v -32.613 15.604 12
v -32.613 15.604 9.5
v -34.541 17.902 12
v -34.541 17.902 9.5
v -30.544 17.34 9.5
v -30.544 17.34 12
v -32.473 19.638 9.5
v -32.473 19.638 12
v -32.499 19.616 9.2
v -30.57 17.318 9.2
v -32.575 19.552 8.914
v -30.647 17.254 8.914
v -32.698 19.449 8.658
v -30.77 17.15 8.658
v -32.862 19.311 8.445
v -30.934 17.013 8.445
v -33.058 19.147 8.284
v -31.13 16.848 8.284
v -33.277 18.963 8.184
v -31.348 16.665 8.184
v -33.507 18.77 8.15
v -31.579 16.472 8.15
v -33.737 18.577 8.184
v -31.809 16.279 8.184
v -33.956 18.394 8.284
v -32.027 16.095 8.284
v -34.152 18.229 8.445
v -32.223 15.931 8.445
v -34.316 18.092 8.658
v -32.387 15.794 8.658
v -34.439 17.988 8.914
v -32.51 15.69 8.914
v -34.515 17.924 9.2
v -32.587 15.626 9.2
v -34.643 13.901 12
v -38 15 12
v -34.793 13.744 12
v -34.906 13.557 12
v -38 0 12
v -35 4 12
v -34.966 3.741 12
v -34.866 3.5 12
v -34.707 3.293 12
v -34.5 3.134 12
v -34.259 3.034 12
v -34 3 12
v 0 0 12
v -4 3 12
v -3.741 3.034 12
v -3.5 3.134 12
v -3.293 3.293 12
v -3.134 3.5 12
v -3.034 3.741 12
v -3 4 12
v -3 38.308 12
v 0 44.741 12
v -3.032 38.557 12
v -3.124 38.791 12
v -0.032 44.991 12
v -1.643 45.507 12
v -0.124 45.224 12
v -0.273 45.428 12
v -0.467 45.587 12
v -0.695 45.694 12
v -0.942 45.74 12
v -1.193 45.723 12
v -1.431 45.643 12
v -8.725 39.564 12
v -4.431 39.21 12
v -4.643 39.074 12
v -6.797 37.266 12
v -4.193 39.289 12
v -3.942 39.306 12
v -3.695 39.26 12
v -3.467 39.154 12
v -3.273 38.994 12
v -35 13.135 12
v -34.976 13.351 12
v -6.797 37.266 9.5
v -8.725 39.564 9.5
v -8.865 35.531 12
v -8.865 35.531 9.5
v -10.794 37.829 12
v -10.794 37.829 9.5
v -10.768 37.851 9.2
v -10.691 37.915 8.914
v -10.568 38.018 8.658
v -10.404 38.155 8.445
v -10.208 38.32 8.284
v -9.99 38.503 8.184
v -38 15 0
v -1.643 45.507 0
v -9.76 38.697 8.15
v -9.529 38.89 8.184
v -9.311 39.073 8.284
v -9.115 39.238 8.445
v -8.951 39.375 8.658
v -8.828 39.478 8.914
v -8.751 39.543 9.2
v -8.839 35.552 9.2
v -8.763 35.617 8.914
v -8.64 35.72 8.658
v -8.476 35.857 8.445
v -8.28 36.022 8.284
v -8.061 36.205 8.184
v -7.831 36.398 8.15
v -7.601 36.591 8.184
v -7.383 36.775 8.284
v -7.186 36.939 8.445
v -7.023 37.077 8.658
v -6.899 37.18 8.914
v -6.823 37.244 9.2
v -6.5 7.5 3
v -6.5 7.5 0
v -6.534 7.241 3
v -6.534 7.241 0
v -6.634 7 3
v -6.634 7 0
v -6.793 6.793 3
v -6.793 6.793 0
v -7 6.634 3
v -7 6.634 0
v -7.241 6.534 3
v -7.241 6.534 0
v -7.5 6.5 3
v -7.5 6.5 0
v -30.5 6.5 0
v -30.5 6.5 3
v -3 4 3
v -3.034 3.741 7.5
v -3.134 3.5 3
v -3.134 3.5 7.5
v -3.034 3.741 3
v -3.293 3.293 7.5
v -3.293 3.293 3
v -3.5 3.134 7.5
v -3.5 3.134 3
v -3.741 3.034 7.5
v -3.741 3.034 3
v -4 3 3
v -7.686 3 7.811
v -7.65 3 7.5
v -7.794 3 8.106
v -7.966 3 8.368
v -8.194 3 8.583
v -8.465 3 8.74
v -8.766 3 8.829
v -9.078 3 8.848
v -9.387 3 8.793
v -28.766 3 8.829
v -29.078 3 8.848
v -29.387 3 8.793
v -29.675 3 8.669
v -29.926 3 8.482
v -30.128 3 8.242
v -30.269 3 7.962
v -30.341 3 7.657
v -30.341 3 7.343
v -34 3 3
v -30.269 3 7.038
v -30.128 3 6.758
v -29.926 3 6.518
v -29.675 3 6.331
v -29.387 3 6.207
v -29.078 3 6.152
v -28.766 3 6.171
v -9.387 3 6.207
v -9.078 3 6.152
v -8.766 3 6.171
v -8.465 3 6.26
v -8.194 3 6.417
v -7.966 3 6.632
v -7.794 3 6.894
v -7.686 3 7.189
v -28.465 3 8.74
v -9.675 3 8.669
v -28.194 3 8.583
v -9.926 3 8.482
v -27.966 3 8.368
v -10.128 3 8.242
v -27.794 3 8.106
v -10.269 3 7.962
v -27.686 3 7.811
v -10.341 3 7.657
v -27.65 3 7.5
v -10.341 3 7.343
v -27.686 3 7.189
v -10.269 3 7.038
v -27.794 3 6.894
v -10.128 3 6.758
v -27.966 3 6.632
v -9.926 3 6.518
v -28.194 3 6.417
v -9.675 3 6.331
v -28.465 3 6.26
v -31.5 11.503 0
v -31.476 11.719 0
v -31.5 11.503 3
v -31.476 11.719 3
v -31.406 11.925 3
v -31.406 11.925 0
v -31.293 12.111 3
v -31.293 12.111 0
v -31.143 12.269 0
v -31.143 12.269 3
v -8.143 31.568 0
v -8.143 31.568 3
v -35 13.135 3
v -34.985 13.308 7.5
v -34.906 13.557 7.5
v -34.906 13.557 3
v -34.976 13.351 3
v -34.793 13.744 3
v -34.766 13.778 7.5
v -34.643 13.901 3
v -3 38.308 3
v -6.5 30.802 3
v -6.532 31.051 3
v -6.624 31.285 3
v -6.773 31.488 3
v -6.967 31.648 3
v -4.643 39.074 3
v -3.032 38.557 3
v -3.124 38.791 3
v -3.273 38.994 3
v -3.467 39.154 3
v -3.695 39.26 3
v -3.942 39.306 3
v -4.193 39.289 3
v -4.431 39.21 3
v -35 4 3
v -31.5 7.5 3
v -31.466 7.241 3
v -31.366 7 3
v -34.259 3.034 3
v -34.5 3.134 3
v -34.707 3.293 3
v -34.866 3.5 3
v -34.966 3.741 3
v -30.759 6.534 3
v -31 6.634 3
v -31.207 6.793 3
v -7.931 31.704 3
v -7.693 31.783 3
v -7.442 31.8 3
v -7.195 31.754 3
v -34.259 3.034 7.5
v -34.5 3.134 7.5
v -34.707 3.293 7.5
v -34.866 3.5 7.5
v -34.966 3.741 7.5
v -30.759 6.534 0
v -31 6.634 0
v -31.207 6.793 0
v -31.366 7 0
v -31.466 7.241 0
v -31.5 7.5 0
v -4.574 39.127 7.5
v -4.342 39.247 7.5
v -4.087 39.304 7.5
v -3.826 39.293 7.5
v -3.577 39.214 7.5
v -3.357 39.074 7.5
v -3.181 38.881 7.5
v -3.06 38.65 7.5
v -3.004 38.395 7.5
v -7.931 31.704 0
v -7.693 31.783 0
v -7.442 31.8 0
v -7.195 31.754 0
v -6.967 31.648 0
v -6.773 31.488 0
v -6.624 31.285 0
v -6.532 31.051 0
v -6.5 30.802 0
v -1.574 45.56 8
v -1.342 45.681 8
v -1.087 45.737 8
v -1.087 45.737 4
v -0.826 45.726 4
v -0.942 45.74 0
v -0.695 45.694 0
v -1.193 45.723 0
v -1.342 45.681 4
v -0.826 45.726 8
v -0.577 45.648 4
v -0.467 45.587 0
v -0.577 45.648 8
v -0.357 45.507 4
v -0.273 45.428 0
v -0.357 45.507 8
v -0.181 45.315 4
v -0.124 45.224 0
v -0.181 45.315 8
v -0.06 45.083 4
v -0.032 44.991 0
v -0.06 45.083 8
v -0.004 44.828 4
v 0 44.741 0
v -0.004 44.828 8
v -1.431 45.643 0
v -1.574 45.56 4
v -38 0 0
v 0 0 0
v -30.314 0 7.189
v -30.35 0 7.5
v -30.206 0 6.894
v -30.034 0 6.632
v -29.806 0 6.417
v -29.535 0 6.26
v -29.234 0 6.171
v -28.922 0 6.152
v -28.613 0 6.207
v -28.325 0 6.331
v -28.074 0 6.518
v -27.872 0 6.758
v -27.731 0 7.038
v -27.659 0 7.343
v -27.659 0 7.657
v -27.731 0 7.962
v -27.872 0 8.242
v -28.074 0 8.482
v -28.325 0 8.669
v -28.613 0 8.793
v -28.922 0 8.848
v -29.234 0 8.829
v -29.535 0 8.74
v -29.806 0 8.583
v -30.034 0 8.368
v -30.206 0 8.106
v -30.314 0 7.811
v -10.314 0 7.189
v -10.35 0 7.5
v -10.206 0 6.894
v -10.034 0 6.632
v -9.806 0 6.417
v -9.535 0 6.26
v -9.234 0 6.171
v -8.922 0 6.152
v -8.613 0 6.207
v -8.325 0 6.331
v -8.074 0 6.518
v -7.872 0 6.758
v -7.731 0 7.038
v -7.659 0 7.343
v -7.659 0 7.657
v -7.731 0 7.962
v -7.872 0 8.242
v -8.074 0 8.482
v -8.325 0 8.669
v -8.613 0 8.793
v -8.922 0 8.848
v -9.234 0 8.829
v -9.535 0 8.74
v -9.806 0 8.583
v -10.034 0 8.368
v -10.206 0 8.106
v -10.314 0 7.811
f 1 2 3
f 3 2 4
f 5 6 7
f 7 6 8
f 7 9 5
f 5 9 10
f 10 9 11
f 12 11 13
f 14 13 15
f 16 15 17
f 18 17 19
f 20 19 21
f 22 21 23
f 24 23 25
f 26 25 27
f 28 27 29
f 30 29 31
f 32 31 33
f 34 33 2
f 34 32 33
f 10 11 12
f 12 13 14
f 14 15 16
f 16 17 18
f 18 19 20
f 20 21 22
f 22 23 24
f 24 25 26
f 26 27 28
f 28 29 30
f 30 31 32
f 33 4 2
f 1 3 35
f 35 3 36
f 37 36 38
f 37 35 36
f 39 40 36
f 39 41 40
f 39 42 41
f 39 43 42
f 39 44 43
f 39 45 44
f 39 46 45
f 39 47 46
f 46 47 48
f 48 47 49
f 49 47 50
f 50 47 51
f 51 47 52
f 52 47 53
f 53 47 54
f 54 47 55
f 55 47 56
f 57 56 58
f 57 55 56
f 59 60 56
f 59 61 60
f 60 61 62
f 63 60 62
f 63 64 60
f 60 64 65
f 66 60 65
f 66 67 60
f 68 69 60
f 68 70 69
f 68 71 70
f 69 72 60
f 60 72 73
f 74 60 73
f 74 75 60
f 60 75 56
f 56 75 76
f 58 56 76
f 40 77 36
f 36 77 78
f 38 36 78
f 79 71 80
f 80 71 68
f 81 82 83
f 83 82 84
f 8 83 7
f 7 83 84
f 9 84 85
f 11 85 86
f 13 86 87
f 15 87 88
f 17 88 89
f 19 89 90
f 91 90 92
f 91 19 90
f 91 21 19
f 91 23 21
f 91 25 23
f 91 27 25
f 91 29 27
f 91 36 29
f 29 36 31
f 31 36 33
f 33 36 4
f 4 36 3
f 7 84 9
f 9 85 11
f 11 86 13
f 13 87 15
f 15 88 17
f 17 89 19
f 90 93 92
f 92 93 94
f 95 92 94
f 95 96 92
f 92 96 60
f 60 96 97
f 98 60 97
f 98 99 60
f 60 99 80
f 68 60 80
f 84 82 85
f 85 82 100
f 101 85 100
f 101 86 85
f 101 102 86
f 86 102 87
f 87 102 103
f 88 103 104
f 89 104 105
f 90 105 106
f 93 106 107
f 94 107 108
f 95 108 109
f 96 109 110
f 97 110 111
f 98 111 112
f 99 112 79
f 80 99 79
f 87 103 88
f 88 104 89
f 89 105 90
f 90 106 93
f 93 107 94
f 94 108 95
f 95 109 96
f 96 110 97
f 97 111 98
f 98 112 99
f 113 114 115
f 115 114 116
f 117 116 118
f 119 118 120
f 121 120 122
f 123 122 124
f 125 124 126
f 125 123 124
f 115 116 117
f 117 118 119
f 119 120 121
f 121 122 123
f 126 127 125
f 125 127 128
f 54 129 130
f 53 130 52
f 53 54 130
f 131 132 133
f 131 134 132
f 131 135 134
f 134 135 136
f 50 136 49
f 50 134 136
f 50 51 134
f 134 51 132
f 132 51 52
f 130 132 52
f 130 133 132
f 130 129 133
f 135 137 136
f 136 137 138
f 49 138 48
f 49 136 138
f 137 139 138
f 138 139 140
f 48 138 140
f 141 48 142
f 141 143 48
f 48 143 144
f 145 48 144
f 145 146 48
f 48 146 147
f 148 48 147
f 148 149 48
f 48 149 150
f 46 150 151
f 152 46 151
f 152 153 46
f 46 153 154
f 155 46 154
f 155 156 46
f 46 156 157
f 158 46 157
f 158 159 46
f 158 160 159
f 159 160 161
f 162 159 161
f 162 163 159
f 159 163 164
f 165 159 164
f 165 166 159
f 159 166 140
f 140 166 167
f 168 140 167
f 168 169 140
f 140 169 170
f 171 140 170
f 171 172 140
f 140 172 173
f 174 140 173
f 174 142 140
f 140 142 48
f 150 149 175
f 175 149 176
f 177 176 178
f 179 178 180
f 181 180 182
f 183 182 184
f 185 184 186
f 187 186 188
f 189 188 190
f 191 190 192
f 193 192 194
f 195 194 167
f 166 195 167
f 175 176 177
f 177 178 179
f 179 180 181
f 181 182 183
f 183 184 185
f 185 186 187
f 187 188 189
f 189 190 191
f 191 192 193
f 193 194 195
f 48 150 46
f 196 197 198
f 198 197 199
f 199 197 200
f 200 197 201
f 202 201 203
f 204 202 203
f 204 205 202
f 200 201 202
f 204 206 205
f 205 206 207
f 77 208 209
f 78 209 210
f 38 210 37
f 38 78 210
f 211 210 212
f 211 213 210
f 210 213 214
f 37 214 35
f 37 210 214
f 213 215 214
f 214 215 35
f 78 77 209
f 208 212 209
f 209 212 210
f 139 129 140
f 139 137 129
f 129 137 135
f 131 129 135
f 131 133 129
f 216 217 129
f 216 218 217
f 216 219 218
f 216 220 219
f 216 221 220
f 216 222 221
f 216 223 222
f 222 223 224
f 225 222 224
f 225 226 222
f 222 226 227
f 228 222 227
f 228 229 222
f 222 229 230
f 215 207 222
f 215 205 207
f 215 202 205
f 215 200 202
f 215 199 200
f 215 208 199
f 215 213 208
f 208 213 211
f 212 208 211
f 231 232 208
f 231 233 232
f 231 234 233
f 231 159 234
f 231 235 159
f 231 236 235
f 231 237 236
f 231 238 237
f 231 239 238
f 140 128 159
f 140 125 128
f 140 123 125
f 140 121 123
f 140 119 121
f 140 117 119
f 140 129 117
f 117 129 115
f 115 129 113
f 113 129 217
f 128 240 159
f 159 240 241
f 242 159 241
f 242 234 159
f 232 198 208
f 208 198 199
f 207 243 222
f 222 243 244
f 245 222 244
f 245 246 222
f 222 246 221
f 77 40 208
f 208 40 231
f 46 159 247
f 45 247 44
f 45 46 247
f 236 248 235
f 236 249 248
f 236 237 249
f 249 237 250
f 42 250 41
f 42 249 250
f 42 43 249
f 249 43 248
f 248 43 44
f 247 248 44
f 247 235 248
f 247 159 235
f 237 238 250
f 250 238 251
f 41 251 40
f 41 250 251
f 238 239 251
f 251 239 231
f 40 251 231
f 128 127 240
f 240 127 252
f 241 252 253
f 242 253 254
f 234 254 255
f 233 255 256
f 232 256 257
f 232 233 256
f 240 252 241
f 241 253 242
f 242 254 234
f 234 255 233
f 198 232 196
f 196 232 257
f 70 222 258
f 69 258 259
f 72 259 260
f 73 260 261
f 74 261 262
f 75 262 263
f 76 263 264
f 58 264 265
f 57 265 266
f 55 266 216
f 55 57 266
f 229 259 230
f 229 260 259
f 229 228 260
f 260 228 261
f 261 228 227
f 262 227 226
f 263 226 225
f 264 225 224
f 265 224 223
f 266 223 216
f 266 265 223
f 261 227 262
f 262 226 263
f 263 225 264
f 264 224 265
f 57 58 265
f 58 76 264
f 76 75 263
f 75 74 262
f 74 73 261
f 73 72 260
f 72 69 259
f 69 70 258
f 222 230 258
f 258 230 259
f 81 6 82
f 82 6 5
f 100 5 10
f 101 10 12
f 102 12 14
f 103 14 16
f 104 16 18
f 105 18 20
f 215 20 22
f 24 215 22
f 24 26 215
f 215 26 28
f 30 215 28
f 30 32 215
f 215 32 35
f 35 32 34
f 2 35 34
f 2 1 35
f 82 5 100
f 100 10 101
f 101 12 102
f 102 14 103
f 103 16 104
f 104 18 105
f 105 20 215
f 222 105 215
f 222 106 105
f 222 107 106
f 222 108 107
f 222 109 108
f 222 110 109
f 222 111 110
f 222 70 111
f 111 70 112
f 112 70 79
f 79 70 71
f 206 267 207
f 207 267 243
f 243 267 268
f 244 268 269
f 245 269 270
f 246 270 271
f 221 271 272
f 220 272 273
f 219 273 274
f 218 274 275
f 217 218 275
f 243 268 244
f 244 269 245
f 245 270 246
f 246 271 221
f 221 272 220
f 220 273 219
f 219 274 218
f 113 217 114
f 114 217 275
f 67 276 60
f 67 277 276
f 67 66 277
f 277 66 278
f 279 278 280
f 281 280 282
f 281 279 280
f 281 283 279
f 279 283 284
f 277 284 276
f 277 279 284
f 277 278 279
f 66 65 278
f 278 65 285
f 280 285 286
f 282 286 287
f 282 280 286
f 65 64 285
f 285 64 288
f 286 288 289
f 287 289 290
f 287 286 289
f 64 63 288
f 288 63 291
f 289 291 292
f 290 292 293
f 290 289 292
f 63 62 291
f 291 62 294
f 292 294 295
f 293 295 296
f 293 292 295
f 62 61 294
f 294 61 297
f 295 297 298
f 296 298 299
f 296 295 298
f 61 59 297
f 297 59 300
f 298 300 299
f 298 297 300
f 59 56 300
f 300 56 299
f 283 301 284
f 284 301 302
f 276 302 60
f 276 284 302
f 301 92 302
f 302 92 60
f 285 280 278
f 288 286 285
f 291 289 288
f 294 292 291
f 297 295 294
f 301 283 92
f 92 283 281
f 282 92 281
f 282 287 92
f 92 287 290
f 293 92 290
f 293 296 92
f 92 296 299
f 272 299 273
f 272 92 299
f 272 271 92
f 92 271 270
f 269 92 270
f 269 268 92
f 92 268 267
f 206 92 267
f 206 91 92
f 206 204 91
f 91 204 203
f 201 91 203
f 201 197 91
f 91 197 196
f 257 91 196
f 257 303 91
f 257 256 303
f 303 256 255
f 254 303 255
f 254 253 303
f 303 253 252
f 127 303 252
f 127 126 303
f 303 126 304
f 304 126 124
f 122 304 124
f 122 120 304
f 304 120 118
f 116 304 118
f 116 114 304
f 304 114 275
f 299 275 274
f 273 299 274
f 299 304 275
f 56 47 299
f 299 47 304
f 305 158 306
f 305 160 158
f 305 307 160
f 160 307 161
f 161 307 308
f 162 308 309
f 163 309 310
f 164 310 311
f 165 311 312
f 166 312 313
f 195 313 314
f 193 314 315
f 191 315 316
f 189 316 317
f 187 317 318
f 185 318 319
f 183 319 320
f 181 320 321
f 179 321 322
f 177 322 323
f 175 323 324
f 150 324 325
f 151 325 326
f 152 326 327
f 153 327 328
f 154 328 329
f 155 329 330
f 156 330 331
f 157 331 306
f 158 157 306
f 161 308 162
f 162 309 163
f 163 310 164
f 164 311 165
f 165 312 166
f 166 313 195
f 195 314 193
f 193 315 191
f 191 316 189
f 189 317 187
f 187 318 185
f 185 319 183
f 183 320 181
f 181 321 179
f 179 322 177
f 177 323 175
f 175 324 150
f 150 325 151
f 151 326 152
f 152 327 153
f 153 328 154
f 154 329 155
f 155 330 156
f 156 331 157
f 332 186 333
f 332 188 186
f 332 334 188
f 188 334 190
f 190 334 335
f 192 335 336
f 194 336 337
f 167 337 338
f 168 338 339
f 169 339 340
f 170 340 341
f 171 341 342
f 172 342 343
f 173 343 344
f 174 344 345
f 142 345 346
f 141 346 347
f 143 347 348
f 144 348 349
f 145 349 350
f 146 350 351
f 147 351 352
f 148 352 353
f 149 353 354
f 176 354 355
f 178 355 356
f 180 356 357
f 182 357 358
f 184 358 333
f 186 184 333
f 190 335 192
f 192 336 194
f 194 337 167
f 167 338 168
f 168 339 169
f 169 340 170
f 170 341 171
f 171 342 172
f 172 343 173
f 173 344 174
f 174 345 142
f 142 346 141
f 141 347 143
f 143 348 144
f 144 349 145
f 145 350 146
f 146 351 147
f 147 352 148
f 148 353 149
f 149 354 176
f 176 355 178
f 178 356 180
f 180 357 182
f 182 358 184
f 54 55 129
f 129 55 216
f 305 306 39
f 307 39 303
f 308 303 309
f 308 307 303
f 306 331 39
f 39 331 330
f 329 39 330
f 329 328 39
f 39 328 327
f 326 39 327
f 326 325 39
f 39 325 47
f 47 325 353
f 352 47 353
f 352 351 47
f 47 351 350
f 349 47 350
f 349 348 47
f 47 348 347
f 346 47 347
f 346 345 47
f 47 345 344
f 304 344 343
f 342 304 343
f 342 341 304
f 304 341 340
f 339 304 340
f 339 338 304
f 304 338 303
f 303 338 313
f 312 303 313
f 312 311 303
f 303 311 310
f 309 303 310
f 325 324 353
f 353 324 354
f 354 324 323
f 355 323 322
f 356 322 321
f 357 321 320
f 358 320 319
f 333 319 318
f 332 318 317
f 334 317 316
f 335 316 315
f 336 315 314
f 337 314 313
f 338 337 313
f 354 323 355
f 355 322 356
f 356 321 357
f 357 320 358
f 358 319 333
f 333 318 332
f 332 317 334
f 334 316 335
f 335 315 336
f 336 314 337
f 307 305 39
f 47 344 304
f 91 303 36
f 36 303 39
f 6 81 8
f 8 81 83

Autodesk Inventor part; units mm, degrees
ref_plane "YZ Plane" through (0, 0, 0) normal (1, 0, 0) x (0, 1, 0)
ref_plane "XZ Plane" through (0, 0, 0) normal (0, 1, 0) x (-1, 0, 0)
ref_plane "XY Plane" through (0, 0, 0) normal (0, 0, 1) x (1, 0, 0)
sketch "Skizze1" plane through (0, 0, 0) normal (0, 0, 1) x (1, 0, 0)
  line L0 (0, 0) -> (0, 46.8858)
  line L1 (0, 46.8858) -> (-38, 15)
  line L2 (-38, 15) -> (-38, 0)
  line L3 (-38, 0) -> (0, 0)
  line L4 (-6.5, 6.5) -> (-6.5, 32.9465)
  line L5 (-6.5, 32.9465) -> (-31.5, 11.969)
  line L6 (-31.5, 11.969) -> (-31.5, 6.5)
  line L7 (-31.5, 6.5) -> (-6.5, 6.5)
  dimension "d0" = 130
  dimension "d1" = 15
  dimension "d2" = 38
  dimension "d3" = 6.5
  dimension "d4" = 6.5
  dimension "d6" = 6.5
  dimension "d7" = 6.5
extrude "Extrusion1" add sketch "Skizze1" along normal blind 12
sketch "Skizze2" plane through (0, 0, 12) normal (0, 0, 1) x (1, 0, 0)
  line L0 (-3, 40.4523) -> (-3, 3)
  line L1 (-3, 3) -> (-35, 3)
  line L2 (-35, 3) -> (-35, 13.6011)
  line L3 (-35, 13.6011) -> (-3, 40.4523)
  line L4 (-38, 0) -> (0, 0) projected
  line L5 (-38, 15) -> (-38, 0) projected
  line L6 (0, 46.8858) -> (-38, 15) projected
  line L7 (0, 0) -> (0, 46.8858) projected
  dimension "d10" = 3
  dimension "d11" = 3
  dimension "d12" = 3
  dimension "d13" = 3
extrude "Extrusion2" cut sketch "Skizze2" against normal blind 9 contours L0 L1 L2 L3
sketch "Skizze3" plane through (-35, 3, 12) normal (0, 1, 0) x (1, 0, 0)
  line L0 (35, 12) -> (35, 0) projected
  line L1 (35, 0) -> (32, 0) projected
  line L2 (32, 0) -> (32, 9) projected
  line L3 (32, 9) -> (0, 9) projected
  line L4 (0, 9) -> (0, 0) projected
  line L5 (0, 0) -> (-3, 0) projected
  line L6 (-3, 0) -> (-3, 12) projected
  line L7 (-3, 12) -> (35, 12) projected
  line L8 (32, 0) -> (0, 0) projected
  line L9 (0, 4.5) -> (32, 4.5)
  point P0 (6, 4.5)
  point P1 (26, 4.5)
  dimension "d17" = 6
  dimension "d18" = 6
hole "Bohrung1" at (-29, 3, 7.5) at (-9, 3, 7.5) direction (0, -1, 0) diameter 2.7 depth 8 tip angle 118
fillet "Rundung2" radius 1 9 edges at (0, 46.8858, 6) (-6.5, 32.9465, 1.5) (-3, 40.4523, 7.5) (-31.5, 6.5, 1.5) (-35, 3, 7.5) (-35, 13.6011, 7.5) (-31.5, 11.969, 1.5) (-3, 3, 7.5) (-6.5, 6.5, 1.5)
sketch "Skizze4" plane through (-34.6428, 13.9008, 3) normal (0.6427876, -0.7660444, 0) x (0.7660444, 0.6427876, 0)
  line L0 (45.2229, -3) -> (-4.3825, -3) projected
  line L1 (-4.3825, -3) -> (-4.3825, 9) projected
  line L2 (-4.3825, 9) -> (0, 9) projected
  line L3 (0, 0) -> (0, 9) projected
  line L4 (0, 0) -> (39.1622, 0) projected
  line L5 (39.1622, 0) -> (39.1622, 9) projected
  line L6 (0, 9) -> (39.1622, 9) projected
  line L7 (45.2229, 9) -> (45.2229, -3) projected
  line L8 (39.1622, 9) -> (45.2229, 9) projected
  point P0 (17.6026, -3)
  point P1 (4, 6.5)
  point P2 (35, 6.5)
  dimension "d27" = 2.5
  dimension "d28" = 4
  dimension "d29" = 2.5
  dimension "d30" = 35
  dimension "d31" = 4.1622
hole "Bohrung2" at (-31.5786, 16.472, 9.5) at (-7.8312, 36.3984, 9.5) direction (-0.6427876, 0.7660444, 0) diameter 2.7 depth 8 tip angle 118
sketch "Skizze7" plane through (-38, 15, 12) normal (-0.6427876, 0.7660444, 0) x (0.7660444, 0.6427876, 0)
  circle A0 centre (36.8652, 2.5) radius 1.35 projected
  line L0 (38.2152, 2.5) -> (38.2152, 0)
  line L1 (1.8652, 0) -> (41.0274, 0) projected
  line L2 (35.5152, 0) -> (35.5152, 2.5)
  point P0 (19.4679, 12)
extrude "Extrusion3" cut sketch "Skizze7" against normal blind 6.25 contours L0 L1 L2 A0
sketch "Skizze8" plane through (-38, 15, 12) normal (-0.6427876, 0.7660444, 0) x (0.7660444, 0.6427876, 0)
  circle A0 centre (5.8652, 2.5) radius 1.35 projected
  line L0 (7.2152, 2.5) -> (7.2152, 0)
  line L1 (-9.6418, 0) -> (19.4679, 0) projected
  line L2 (4.5152, 2.5) -> (4.5152, 0)
  point P0 (19.4679, 12)
extrude "Extrusion4" cut sketch "Skizze8" against normal blind 6.5 contours L0 L1 L2 A0
properties part number "lcd_halterung_162C_rechts"
